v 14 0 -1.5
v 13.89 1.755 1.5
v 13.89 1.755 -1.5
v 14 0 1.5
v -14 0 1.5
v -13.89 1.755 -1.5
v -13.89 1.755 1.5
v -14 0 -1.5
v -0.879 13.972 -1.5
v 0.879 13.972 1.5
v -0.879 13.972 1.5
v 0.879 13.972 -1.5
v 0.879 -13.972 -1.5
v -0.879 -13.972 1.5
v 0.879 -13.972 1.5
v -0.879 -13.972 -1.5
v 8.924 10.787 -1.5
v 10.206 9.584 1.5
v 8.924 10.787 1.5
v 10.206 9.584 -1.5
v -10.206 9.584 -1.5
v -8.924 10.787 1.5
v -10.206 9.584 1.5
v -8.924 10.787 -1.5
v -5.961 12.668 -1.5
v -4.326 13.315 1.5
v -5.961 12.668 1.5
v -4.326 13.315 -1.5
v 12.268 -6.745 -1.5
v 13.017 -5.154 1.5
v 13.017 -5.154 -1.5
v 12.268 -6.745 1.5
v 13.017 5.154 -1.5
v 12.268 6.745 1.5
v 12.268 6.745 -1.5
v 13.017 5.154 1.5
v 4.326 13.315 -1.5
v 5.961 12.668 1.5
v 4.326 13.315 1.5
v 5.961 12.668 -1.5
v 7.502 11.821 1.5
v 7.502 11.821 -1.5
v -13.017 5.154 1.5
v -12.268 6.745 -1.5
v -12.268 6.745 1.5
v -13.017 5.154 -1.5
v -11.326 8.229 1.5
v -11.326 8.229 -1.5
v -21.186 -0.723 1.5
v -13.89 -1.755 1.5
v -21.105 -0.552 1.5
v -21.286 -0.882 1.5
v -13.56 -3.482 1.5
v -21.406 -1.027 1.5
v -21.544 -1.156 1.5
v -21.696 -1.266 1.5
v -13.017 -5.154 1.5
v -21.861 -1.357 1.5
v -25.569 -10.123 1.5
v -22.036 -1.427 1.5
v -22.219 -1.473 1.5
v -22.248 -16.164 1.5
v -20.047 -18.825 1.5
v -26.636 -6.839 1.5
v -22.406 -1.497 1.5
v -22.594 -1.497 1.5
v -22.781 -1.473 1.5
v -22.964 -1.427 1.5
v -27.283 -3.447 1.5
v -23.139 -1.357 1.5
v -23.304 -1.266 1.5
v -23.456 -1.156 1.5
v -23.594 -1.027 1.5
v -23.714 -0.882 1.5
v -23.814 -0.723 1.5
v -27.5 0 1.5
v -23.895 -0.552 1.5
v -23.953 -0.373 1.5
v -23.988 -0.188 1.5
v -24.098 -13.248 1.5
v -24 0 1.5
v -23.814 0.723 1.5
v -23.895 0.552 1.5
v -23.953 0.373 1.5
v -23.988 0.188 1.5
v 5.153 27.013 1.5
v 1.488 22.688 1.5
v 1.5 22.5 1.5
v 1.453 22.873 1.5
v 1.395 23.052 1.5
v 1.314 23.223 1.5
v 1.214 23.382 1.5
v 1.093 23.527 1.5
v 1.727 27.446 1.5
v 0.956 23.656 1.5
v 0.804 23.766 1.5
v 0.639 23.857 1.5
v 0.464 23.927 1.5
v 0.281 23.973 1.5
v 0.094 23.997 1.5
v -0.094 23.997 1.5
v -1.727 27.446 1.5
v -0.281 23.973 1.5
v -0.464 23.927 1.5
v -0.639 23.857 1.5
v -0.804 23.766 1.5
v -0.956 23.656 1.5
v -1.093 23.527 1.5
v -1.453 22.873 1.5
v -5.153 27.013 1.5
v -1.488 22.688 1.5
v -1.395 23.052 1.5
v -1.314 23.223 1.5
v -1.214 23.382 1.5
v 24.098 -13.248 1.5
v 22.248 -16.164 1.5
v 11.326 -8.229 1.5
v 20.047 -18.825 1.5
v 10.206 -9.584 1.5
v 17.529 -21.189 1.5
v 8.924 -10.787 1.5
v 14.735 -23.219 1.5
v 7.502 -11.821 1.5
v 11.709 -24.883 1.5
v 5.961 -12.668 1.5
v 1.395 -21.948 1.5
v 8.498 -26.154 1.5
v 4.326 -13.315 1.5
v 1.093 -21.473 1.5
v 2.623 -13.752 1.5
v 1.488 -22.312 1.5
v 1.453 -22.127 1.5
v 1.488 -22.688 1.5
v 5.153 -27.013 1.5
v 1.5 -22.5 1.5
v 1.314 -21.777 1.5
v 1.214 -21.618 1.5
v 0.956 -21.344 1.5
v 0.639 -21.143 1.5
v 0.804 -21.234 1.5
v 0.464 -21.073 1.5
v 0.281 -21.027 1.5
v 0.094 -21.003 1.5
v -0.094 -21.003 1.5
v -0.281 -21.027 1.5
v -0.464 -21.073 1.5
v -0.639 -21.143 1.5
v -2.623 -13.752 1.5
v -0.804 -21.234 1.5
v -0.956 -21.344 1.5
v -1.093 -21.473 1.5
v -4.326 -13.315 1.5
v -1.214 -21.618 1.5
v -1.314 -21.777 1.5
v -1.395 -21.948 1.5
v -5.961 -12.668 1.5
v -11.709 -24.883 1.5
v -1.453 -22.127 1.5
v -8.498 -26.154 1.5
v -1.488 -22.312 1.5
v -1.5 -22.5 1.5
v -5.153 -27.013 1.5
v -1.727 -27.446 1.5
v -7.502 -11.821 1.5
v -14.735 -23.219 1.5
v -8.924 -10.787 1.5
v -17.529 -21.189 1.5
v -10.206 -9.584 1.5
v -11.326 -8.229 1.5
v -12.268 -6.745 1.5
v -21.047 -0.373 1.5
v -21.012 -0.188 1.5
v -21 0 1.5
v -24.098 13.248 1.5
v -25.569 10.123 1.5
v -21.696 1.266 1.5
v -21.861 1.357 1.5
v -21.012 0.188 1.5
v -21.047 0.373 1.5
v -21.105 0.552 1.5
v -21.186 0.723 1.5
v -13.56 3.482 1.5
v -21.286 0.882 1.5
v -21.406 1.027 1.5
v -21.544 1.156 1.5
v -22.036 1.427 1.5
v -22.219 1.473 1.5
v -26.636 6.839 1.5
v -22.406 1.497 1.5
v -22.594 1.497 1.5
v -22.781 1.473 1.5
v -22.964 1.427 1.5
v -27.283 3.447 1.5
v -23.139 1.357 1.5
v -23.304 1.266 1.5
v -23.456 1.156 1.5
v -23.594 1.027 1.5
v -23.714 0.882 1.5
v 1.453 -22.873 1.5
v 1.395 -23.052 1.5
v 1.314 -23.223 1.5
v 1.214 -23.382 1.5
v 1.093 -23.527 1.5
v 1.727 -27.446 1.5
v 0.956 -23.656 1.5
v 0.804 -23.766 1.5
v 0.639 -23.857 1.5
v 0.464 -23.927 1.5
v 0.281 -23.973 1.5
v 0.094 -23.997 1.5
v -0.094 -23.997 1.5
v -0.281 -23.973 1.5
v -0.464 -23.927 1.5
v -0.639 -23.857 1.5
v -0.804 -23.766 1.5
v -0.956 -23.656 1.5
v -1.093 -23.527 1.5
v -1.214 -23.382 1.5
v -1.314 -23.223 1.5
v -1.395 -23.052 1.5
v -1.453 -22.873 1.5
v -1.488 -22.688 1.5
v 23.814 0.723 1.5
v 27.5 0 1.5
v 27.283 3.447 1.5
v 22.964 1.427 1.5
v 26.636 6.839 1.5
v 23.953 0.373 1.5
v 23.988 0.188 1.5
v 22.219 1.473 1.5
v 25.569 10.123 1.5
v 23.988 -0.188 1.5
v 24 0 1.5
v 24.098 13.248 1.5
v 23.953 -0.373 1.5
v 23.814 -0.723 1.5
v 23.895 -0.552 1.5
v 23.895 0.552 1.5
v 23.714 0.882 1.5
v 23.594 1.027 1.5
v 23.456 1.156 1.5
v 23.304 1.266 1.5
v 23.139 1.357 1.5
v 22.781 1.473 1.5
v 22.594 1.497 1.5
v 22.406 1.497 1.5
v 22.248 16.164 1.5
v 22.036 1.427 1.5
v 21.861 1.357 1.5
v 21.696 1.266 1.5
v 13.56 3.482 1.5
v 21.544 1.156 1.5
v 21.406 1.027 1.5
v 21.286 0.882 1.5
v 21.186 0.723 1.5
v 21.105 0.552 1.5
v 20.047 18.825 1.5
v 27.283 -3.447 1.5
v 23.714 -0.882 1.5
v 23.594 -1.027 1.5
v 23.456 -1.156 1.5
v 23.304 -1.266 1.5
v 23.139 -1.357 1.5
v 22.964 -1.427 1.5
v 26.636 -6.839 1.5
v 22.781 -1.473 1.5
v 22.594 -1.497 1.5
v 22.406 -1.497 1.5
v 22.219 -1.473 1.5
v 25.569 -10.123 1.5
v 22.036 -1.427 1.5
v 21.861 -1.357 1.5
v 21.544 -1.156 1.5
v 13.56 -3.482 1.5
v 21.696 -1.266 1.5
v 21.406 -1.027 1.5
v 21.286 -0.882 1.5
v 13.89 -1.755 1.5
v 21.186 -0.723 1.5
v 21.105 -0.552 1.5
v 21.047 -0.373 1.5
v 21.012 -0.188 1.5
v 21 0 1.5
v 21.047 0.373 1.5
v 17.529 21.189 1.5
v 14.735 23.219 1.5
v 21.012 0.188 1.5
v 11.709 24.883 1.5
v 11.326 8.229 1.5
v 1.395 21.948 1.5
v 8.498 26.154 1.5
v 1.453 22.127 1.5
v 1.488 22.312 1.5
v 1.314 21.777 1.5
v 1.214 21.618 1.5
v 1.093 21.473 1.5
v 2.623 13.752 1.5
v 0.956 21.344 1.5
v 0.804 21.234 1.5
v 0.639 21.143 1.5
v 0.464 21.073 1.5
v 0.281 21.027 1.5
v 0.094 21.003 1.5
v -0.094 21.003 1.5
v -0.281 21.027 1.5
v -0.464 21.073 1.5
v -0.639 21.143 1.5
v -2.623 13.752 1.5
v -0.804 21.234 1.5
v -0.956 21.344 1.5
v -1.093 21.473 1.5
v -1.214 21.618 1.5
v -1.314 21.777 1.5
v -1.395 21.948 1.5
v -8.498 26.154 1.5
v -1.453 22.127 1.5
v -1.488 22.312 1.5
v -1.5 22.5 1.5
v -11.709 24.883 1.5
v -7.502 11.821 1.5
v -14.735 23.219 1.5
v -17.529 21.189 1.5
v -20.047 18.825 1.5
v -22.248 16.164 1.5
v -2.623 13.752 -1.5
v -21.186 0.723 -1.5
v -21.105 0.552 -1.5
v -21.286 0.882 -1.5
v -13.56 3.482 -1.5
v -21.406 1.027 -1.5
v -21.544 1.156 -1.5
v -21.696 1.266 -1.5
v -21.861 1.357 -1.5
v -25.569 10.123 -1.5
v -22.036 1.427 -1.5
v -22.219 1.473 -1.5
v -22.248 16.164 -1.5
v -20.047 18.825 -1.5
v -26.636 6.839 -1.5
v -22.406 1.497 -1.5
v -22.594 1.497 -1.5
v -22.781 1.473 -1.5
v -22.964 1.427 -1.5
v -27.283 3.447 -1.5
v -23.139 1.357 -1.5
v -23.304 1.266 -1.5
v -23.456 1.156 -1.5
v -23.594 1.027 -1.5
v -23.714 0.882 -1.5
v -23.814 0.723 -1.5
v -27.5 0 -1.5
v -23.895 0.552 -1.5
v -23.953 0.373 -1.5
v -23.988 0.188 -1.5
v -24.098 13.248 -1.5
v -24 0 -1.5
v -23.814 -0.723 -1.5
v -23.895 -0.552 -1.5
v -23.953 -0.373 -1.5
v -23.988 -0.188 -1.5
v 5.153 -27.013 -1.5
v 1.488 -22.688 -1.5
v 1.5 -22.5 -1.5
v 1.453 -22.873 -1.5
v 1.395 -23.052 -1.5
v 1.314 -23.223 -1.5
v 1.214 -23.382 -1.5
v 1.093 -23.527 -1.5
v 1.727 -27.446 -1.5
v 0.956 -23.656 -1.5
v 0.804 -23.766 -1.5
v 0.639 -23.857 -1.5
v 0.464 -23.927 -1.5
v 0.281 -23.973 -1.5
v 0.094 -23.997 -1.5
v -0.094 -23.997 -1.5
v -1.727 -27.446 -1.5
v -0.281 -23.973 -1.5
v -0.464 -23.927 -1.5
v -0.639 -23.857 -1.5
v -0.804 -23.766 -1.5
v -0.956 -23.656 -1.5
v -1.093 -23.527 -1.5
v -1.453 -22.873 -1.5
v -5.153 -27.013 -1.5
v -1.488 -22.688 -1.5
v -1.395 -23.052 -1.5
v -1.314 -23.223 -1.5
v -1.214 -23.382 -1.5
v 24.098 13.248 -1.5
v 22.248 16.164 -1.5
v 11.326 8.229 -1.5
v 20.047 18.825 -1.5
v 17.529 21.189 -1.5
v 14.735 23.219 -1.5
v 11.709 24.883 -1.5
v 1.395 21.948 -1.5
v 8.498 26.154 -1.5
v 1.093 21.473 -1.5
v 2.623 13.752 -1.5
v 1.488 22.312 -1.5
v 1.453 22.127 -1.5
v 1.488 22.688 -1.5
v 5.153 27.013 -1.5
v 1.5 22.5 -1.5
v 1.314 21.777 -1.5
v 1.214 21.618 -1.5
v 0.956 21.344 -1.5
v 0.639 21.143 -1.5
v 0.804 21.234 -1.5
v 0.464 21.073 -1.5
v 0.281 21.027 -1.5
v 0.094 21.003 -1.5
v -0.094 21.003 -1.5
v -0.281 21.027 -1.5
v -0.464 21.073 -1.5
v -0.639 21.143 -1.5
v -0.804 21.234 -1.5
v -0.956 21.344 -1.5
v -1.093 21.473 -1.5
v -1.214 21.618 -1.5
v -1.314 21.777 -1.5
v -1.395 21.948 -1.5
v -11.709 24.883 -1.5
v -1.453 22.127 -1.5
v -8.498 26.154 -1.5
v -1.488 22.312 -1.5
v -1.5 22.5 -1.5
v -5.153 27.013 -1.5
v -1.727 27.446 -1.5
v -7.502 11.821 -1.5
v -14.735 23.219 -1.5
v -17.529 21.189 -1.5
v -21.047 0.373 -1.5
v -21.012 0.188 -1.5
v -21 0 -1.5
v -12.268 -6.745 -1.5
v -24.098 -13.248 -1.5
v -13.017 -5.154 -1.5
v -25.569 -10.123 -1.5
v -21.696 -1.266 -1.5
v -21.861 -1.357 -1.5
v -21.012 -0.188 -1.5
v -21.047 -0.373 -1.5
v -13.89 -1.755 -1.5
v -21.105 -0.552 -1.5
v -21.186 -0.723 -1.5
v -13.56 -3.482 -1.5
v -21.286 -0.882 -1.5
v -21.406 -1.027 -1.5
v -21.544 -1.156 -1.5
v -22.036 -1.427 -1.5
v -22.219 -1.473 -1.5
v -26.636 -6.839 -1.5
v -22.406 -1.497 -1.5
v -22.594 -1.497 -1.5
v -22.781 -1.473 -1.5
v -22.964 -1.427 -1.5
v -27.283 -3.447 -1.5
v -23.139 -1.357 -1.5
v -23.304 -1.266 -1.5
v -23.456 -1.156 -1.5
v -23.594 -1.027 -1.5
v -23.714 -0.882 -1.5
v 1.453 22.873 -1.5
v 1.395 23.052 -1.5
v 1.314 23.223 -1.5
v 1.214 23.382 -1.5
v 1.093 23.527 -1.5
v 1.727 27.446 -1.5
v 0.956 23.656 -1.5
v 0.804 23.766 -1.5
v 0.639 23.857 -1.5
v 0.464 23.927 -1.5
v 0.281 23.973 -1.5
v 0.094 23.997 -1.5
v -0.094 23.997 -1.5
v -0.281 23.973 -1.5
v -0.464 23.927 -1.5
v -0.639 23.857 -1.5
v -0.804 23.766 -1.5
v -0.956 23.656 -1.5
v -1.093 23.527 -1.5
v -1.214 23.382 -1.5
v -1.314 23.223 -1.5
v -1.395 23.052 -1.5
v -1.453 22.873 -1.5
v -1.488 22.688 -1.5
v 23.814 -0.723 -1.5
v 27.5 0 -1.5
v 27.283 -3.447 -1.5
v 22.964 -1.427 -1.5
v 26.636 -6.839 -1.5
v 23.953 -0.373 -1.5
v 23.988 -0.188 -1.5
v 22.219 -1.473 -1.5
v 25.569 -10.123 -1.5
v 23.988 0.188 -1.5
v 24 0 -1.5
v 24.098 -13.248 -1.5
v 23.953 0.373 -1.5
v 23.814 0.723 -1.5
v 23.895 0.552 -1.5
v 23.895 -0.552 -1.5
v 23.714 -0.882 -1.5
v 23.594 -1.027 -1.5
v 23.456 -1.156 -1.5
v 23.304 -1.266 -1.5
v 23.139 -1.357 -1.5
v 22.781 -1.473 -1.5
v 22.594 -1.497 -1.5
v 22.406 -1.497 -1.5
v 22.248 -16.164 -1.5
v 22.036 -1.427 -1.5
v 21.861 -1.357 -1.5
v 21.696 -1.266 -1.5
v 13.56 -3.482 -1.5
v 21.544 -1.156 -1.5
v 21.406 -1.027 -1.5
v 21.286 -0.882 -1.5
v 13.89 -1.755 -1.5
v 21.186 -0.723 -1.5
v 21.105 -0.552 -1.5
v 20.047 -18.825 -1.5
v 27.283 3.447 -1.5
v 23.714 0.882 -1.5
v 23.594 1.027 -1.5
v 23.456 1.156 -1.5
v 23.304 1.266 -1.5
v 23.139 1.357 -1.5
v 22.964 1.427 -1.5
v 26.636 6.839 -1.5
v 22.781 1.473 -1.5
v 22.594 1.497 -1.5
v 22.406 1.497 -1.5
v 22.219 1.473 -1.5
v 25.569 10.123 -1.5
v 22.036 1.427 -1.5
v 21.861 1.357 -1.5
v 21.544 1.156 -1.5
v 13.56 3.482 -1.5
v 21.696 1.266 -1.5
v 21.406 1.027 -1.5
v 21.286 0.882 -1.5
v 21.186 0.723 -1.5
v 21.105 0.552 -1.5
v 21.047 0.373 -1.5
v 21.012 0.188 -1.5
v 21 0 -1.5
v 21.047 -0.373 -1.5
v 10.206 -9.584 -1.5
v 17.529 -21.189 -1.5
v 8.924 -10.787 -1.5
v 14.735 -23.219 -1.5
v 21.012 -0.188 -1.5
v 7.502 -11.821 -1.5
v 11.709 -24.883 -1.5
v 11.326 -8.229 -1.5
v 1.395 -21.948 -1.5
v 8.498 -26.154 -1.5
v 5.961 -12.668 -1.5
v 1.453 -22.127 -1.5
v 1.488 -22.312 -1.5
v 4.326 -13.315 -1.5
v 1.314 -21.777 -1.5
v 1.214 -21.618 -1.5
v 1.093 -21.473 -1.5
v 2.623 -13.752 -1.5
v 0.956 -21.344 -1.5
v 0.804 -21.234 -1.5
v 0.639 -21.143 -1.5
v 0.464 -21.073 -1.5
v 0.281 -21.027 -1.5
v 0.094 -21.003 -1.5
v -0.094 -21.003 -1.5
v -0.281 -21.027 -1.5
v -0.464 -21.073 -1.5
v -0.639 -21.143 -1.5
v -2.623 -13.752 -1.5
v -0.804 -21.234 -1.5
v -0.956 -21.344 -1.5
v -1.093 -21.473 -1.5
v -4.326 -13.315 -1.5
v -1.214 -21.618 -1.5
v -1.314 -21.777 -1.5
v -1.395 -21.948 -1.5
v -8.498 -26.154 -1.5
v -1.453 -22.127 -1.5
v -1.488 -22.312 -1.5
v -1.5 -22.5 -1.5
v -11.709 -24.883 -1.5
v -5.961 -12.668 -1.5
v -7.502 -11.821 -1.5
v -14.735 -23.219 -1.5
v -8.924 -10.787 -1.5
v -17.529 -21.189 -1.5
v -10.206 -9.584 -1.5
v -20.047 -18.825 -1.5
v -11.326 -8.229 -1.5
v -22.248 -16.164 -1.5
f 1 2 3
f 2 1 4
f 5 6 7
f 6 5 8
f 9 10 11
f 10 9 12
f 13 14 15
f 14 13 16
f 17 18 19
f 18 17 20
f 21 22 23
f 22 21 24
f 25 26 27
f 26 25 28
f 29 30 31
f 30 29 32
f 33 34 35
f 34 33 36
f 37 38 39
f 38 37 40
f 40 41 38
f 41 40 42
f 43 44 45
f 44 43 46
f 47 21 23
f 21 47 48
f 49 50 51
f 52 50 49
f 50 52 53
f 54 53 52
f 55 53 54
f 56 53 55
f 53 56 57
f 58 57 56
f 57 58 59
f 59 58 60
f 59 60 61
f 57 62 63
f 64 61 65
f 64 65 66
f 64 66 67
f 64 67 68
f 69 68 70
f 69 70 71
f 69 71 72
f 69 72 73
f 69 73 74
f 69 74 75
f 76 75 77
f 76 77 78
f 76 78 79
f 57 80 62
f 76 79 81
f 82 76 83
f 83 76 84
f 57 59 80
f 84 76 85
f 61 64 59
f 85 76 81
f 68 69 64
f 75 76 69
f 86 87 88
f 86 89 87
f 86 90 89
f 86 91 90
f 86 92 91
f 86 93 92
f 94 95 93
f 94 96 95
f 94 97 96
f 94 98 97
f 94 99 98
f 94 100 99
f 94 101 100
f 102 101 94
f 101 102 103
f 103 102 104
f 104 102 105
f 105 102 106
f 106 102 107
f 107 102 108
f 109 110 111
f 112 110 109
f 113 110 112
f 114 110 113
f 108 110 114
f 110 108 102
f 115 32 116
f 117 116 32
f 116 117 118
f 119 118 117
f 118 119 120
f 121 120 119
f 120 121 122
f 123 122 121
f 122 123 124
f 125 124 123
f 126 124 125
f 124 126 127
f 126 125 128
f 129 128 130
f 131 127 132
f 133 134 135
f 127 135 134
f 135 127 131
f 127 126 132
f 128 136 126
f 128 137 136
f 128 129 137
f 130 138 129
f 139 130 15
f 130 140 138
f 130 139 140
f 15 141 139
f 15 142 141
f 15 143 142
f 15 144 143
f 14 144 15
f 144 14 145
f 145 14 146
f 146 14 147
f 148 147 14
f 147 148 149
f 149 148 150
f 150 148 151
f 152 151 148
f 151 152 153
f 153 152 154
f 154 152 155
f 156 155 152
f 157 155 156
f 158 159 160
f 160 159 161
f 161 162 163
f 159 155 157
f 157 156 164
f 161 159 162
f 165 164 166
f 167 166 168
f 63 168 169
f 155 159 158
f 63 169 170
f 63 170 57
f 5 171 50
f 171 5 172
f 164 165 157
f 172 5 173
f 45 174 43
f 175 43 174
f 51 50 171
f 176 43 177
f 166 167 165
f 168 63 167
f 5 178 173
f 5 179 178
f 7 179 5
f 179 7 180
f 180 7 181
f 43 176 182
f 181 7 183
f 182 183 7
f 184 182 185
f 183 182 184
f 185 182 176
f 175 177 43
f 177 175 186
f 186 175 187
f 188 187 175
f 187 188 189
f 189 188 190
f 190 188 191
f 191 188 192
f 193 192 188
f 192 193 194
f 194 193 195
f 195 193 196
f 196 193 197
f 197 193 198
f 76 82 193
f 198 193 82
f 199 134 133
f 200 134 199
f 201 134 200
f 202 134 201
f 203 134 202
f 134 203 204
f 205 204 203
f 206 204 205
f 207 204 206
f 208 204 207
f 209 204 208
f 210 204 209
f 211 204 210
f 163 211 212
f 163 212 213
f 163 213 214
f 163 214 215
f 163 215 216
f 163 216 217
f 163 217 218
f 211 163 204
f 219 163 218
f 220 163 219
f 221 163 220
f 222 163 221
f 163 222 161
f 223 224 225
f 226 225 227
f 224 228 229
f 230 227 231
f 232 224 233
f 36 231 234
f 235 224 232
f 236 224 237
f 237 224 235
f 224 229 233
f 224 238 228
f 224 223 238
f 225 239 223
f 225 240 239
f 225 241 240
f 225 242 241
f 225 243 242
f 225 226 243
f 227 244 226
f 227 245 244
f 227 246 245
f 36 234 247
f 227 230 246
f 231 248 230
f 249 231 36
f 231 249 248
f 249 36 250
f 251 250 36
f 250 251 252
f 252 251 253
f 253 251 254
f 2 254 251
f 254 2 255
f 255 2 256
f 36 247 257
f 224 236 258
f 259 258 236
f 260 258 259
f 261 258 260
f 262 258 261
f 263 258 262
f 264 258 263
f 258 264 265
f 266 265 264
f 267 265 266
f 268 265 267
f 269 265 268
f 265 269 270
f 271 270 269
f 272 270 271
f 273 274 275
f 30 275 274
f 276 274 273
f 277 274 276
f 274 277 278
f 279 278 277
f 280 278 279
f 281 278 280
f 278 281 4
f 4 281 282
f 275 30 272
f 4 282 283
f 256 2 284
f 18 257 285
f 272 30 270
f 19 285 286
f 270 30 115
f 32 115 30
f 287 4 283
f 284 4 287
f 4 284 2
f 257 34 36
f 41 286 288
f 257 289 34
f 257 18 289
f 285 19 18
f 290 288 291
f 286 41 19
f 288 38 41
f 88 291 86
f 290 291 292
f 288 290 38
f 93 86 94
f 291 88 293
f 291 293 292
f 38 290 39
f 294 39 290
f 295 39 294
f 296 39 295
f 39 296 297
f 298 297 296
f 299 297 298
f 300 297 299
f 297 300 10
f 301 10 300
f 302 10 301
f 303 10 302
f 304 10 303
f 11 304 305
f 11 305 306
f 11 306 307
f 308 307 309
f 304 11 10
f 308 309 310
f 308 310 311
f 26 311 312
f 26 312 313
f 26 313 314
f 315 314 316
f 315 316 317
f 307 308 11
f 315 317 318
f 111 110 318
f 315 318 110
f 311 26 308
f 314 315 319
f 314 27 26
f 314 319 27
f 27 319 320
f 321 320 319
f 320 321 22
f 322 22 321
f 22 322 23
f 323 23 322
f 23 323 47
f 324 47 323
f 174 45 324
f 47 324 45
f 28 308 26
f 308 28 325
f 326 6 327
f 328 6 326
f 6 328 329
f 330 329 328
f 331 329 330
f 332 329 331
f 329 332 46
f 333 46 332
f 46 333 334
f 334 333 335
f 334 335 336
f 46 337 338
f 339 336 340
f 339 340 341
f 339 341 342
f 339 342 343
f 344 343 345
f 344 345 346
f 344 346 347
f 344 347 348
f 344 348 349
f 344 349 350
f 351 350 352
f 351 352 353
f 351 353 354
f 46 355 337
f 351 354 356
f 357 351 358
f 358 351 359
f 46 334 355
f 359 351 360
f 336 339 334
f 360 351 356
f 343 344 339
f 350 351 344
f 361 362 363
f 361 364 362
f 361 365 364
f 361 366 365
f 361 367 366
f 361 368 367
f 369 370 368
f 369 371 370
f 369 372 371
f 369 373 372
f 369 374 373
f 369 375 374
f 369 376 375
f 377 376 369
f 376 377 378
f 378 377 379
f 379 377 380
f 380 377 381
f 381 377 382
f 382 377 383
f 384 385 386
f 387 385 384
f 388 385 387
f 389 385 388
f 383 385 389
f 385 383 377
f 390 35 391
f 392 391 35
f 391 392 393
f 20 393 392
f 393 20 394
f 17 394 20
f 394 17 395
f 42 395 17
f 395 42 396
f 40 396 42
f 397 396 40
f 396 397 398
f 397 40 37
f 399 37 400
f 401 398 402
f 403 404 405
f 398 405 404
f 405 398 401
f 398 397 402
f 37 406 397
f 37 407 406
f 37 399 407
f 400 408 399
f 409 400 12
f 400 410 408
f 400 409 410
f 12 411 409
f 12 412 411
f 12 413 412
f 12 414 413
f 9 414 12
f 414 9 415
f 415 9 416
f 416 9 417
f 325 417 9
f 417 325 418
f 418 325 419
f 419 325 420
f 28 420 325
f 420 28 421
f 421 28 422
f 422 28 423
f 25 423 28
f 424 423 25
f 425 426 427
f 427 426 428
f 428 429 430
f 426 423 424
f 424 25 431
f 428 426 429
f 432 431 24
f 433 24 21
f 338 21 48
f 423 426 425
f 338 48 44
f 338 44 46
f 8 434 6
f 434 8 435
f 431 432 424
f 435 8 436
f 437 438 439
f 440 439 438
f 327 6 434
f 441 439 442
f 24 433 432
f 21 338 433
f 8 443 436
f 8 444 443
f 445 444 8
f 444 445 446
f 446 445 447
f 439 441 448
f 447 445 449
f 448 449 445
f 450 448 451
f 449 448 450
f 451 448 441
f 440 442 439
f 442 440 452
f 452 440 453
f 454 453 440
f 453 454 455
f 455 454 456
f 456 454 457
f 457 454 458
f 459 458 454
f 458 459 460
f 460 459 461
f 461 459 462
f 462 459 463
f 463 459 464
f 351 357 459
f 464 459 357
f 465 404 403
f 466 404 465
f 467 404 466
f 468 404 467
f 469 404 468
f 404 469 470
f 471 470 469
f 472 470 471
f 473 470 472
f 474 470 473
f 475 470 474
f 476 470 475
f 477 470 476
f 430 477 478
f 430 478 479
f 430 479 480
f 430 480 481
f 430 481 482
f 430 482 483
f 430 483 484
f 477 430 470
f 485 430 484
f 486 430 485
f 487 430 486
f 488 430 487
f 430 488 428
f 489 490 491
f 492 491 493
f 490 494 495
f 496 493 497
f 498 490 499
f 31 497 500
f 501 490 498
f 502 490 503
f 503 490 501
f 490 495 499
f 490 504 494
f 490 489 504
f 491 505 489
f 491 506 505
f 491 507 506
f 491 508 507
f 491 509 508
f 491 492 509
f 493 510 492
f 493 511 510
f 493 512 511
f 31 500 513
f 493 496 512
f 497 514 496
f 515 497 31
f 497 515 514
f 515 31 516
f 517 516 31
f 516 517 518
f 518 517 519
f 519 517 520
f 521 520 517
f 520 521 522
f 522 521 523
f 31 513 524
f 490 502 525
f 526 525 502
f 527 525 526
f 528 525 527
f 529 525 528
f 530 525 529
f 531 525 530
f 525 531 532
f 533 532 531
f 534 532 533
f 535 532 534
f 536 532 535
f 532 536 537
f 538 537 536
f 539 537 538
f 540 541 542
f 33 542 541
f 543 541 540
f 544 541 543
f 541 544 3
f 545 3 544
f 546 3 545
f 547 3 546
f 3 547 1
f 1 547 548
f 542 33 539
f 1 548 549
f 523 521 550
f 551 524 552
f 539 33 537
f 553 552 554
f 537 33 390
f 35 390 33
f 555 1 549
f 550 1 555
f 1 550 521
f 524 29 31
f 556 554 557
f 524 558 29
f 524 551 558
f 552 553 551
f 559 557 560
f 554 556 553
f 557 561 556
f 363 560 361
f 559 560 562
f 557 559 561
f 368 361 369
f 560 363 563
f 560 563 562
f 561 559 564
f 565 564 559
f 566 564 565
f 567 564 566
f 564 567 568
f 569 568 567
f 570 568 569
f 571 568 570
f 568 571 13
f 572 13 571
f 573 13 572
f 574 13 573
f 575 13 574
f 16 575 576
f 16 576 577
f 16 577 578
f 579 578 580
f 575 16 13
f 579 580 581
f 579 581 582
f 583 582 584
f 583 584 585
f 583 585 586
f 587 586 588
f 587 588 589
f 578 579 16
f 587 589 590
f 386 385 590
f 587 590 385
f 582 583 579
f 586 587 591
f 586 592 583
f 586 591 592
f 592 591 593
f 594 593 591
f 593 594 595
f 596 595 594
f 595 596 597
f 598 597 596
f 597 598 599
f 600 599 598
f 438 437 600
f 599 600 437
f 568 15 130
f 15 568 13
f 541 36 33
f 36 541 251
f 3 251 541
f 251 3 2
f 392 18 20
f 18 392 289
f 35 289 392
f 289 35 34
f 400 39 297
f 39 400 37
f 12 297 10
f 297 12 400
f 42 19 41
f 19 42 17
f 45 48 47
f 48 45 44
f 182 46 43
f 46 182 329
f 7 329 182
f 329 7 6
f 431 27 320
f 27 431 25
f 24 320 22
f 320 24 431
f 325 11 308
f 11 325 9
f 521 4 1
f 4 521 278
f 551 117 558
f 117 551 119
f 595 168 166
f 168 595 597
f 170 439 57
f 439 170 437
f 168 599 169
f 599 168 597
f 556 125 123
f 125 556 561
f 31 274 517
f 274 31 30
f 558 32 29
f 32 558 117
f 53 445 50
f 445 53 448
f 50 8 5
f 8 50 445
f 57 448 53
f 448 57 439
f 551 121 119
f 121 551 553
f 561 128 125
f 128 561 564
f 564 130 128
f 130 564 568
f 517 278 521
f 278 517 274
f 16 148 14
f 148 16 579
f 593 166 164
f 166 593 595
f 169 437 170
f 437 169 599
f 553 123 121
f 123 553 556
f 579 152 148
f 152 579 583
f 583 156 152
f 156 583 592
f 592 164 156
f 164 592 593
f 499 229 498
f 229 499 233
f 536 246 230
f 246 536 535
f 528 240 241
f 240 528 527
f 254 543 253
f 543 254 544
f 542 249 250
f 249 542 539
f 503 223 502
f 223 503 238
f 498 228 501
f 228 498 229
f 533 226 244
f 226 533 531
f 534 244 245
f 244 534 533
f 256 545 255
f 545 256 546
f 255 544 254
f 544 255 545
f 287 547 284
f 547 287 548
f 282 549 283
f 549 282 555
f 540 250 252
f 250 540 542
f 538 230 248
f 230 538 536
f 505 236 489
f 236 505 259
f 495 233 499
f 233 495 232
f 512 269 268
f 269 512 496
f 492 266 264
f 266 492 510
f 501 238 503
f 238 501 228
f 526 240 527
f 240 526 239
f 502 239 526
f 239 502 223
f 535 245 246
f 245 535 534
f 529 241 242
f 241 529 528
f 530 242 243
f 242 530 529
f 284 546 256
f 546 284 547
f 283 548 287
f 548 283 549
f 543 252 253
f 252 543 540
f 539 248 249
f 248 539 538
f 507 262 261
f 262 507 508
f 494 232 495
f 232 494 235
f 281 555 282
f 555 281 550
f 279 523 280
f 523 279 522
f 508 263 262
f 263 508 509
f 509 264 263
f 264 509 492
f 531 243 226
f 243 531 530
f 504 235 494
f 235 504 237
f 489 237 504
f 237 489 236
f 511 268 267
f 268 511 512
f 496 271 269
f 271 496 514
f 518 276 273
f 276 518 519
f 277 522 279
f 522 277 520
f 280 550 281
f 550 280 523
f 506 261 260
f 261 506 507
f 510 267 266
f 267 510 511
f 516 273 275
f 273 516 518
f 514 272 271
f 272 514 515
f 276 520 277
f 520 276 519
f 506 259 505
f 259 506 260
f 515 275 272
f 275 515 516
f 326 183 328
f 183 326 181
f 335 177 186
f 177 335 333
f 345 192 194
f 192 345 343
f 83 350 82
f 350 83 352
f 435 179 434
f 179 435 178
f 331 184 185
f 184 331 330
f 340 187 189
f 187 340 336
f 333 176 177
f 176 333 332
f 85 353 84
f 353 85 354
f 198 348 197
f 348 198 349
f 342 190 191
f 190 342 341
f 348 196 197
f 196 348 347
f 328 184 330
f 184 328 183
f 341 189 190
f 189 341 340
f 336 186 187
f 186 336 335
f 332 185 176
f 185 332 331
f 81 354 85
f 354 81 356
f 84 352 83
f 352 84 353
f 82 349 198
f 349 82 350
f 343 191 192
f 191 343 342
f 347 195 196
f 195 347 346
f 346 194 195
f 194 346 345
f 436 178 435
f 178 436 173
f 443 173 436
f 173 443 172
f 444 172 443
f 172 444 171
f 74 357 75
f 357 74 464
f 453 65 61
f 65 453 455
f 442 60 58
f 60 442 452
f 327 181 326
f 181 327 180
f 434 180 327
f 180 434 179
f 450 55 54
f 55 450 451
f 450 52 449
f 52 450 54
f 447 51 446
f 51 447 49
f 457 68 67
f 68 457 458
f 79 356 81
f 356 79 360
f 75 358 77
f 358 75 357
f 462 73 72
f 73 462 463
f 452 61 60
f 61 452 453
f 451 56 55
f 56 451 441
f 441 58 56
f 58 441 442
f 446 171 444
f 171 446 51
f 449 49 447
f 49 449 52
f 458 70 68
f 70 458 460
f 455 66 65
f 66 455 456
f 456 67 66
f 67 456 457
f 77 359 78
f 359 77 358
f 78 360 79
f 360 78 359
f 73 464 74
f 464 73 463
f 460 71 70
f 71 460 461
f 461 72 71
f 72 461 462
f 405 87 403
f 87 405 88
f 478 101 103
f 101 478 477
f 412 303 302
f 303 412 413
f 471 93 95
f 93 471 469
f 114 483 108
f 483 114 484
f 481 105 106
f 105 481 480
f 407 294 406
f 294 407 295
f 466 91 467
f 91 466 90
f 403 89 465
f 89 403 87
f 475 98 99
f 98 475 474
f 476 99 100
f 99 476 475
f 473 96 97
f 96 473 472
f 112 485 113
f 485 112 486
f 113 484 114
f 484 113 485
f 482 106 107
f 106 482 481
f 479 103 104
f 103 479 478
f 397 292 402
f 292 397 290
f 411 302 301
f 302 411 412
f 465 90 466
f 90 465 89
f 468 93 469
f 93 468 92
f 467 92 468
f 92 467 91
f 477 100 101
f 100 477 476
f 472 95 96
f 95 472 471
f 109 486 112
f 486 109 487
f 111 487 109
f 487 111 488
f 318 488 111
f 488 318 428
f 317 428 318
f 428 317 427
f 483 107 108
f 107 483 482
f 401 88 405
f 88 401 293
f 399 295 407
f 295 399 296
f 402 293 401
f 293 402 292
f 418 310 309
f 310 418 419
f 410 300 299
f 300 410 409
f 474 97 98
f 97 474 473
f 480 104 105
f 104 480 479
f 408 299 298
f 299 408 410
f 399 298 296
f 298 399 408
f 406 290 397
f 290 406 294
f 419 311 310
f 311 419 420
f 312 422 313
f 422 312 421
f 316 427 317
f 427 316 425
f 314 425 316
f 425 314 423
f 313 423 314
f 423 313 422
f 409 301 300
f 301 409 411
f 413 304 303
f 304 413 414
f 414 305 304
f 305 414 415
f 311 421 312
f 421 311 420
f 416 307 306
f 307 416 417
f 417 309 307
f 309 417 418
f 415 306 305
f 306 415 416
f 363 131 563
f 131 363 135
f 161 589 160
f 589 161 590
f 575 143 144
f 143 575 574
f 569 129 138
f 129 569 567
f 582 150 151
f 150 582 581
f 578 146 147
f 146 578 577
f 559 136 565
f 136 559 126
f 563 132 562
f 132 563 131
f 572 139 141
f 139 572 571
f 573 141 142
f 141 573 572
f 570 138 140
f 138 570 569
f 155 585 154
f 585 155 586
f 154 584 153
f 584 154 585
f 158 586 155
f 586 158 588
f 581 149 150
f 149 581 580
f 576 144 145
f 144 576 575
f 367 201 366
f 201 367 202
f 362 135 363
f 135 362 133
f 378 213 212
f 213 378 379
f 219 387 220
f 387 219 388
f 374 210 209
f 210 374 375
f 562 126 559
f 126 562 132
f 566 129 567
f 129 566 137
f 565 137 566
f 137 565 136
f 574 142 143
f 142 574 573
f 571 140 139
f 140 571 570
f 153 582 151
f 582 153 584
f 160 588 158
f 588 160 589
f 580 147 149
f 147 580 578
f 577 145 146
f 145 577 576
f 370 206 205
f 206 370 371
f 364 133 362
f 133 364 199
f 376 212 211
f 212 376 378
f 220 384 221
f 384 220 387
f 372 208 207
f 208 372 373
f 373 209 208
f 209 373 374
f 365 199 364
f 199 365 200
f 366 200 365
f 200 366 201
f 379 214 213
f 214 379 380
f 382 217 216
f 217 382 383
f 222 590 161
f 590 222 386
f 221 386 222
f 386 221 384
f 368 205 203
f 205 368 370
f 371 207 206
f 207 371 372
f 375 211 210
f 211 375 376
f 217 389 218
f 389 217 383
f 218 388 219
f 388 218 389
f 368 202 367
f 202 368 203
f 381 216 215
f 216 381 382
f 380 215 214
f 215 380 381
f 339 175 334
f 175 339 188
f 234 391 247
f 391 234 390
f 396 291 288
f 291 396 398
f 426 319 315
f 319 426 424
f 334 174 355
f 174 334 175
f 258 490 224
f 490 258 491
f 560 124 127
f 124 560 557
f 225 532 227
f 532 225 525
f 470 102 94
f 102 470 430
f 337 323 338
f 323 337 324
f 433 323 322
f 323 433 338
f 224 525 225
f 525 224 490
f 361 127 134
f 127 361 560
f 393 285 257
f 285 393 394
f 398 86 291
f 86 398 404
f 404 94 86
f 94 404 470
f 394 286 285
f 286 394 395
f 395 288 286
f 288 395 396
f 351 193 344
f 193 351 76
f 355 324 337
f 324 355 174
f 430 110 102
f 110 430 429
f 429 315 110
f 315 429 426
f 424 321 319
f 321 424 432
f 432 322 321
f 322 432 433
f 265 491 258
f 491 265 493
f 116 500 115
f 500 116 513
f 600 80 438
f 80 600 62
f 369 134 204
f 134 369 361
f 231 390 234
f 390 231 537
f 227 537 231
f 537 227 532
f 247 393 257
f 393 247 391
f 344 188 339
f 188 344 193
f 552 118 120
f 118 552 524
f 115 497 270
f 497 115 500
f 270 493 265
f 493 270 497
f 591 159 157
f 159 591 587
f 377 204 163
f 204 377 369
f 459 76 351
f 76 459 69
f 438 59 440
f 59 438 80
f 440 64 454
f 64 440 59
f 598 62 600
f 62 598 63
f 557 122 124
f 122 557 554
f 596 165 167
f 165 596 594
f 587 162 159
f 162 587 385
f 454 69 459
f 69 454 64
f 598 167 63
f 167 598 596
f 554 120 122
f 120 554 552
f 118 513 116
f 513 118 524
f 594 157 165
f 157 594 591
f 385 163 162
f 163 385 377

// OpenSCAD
$fn = 50;


difference() {
	union() {
		translate(v = [0, 0, -1.5000000000]) {
			cylinder(h = 3, r = 27.5000000000);
		}
	}
	union() {
		translate(v = [0, 0, -1.5000000000]) {
			cylinder(h = 3, r = 14.0000000000);
		}
		translate(v = [22.5000000000, 0, -47.0000000000]) {
			cylinder(h = 100, r = 1.5000000000);
		}
		translate(v = [-22.5000000000, 0, -47.0000000000]) {
			cylinder(h = 100, r = 1.5000000000);
		}
		translate(v = [0, 22.5000000000, -47.0000000000]) {
			cylinder(h = 100, r = 1.5000000000);
		}
		translate(v = [0, -22.5000000000, -47.0000000000]) {
			cylinder(h = 100, r = 1.5000000000);
		}
	}
}
